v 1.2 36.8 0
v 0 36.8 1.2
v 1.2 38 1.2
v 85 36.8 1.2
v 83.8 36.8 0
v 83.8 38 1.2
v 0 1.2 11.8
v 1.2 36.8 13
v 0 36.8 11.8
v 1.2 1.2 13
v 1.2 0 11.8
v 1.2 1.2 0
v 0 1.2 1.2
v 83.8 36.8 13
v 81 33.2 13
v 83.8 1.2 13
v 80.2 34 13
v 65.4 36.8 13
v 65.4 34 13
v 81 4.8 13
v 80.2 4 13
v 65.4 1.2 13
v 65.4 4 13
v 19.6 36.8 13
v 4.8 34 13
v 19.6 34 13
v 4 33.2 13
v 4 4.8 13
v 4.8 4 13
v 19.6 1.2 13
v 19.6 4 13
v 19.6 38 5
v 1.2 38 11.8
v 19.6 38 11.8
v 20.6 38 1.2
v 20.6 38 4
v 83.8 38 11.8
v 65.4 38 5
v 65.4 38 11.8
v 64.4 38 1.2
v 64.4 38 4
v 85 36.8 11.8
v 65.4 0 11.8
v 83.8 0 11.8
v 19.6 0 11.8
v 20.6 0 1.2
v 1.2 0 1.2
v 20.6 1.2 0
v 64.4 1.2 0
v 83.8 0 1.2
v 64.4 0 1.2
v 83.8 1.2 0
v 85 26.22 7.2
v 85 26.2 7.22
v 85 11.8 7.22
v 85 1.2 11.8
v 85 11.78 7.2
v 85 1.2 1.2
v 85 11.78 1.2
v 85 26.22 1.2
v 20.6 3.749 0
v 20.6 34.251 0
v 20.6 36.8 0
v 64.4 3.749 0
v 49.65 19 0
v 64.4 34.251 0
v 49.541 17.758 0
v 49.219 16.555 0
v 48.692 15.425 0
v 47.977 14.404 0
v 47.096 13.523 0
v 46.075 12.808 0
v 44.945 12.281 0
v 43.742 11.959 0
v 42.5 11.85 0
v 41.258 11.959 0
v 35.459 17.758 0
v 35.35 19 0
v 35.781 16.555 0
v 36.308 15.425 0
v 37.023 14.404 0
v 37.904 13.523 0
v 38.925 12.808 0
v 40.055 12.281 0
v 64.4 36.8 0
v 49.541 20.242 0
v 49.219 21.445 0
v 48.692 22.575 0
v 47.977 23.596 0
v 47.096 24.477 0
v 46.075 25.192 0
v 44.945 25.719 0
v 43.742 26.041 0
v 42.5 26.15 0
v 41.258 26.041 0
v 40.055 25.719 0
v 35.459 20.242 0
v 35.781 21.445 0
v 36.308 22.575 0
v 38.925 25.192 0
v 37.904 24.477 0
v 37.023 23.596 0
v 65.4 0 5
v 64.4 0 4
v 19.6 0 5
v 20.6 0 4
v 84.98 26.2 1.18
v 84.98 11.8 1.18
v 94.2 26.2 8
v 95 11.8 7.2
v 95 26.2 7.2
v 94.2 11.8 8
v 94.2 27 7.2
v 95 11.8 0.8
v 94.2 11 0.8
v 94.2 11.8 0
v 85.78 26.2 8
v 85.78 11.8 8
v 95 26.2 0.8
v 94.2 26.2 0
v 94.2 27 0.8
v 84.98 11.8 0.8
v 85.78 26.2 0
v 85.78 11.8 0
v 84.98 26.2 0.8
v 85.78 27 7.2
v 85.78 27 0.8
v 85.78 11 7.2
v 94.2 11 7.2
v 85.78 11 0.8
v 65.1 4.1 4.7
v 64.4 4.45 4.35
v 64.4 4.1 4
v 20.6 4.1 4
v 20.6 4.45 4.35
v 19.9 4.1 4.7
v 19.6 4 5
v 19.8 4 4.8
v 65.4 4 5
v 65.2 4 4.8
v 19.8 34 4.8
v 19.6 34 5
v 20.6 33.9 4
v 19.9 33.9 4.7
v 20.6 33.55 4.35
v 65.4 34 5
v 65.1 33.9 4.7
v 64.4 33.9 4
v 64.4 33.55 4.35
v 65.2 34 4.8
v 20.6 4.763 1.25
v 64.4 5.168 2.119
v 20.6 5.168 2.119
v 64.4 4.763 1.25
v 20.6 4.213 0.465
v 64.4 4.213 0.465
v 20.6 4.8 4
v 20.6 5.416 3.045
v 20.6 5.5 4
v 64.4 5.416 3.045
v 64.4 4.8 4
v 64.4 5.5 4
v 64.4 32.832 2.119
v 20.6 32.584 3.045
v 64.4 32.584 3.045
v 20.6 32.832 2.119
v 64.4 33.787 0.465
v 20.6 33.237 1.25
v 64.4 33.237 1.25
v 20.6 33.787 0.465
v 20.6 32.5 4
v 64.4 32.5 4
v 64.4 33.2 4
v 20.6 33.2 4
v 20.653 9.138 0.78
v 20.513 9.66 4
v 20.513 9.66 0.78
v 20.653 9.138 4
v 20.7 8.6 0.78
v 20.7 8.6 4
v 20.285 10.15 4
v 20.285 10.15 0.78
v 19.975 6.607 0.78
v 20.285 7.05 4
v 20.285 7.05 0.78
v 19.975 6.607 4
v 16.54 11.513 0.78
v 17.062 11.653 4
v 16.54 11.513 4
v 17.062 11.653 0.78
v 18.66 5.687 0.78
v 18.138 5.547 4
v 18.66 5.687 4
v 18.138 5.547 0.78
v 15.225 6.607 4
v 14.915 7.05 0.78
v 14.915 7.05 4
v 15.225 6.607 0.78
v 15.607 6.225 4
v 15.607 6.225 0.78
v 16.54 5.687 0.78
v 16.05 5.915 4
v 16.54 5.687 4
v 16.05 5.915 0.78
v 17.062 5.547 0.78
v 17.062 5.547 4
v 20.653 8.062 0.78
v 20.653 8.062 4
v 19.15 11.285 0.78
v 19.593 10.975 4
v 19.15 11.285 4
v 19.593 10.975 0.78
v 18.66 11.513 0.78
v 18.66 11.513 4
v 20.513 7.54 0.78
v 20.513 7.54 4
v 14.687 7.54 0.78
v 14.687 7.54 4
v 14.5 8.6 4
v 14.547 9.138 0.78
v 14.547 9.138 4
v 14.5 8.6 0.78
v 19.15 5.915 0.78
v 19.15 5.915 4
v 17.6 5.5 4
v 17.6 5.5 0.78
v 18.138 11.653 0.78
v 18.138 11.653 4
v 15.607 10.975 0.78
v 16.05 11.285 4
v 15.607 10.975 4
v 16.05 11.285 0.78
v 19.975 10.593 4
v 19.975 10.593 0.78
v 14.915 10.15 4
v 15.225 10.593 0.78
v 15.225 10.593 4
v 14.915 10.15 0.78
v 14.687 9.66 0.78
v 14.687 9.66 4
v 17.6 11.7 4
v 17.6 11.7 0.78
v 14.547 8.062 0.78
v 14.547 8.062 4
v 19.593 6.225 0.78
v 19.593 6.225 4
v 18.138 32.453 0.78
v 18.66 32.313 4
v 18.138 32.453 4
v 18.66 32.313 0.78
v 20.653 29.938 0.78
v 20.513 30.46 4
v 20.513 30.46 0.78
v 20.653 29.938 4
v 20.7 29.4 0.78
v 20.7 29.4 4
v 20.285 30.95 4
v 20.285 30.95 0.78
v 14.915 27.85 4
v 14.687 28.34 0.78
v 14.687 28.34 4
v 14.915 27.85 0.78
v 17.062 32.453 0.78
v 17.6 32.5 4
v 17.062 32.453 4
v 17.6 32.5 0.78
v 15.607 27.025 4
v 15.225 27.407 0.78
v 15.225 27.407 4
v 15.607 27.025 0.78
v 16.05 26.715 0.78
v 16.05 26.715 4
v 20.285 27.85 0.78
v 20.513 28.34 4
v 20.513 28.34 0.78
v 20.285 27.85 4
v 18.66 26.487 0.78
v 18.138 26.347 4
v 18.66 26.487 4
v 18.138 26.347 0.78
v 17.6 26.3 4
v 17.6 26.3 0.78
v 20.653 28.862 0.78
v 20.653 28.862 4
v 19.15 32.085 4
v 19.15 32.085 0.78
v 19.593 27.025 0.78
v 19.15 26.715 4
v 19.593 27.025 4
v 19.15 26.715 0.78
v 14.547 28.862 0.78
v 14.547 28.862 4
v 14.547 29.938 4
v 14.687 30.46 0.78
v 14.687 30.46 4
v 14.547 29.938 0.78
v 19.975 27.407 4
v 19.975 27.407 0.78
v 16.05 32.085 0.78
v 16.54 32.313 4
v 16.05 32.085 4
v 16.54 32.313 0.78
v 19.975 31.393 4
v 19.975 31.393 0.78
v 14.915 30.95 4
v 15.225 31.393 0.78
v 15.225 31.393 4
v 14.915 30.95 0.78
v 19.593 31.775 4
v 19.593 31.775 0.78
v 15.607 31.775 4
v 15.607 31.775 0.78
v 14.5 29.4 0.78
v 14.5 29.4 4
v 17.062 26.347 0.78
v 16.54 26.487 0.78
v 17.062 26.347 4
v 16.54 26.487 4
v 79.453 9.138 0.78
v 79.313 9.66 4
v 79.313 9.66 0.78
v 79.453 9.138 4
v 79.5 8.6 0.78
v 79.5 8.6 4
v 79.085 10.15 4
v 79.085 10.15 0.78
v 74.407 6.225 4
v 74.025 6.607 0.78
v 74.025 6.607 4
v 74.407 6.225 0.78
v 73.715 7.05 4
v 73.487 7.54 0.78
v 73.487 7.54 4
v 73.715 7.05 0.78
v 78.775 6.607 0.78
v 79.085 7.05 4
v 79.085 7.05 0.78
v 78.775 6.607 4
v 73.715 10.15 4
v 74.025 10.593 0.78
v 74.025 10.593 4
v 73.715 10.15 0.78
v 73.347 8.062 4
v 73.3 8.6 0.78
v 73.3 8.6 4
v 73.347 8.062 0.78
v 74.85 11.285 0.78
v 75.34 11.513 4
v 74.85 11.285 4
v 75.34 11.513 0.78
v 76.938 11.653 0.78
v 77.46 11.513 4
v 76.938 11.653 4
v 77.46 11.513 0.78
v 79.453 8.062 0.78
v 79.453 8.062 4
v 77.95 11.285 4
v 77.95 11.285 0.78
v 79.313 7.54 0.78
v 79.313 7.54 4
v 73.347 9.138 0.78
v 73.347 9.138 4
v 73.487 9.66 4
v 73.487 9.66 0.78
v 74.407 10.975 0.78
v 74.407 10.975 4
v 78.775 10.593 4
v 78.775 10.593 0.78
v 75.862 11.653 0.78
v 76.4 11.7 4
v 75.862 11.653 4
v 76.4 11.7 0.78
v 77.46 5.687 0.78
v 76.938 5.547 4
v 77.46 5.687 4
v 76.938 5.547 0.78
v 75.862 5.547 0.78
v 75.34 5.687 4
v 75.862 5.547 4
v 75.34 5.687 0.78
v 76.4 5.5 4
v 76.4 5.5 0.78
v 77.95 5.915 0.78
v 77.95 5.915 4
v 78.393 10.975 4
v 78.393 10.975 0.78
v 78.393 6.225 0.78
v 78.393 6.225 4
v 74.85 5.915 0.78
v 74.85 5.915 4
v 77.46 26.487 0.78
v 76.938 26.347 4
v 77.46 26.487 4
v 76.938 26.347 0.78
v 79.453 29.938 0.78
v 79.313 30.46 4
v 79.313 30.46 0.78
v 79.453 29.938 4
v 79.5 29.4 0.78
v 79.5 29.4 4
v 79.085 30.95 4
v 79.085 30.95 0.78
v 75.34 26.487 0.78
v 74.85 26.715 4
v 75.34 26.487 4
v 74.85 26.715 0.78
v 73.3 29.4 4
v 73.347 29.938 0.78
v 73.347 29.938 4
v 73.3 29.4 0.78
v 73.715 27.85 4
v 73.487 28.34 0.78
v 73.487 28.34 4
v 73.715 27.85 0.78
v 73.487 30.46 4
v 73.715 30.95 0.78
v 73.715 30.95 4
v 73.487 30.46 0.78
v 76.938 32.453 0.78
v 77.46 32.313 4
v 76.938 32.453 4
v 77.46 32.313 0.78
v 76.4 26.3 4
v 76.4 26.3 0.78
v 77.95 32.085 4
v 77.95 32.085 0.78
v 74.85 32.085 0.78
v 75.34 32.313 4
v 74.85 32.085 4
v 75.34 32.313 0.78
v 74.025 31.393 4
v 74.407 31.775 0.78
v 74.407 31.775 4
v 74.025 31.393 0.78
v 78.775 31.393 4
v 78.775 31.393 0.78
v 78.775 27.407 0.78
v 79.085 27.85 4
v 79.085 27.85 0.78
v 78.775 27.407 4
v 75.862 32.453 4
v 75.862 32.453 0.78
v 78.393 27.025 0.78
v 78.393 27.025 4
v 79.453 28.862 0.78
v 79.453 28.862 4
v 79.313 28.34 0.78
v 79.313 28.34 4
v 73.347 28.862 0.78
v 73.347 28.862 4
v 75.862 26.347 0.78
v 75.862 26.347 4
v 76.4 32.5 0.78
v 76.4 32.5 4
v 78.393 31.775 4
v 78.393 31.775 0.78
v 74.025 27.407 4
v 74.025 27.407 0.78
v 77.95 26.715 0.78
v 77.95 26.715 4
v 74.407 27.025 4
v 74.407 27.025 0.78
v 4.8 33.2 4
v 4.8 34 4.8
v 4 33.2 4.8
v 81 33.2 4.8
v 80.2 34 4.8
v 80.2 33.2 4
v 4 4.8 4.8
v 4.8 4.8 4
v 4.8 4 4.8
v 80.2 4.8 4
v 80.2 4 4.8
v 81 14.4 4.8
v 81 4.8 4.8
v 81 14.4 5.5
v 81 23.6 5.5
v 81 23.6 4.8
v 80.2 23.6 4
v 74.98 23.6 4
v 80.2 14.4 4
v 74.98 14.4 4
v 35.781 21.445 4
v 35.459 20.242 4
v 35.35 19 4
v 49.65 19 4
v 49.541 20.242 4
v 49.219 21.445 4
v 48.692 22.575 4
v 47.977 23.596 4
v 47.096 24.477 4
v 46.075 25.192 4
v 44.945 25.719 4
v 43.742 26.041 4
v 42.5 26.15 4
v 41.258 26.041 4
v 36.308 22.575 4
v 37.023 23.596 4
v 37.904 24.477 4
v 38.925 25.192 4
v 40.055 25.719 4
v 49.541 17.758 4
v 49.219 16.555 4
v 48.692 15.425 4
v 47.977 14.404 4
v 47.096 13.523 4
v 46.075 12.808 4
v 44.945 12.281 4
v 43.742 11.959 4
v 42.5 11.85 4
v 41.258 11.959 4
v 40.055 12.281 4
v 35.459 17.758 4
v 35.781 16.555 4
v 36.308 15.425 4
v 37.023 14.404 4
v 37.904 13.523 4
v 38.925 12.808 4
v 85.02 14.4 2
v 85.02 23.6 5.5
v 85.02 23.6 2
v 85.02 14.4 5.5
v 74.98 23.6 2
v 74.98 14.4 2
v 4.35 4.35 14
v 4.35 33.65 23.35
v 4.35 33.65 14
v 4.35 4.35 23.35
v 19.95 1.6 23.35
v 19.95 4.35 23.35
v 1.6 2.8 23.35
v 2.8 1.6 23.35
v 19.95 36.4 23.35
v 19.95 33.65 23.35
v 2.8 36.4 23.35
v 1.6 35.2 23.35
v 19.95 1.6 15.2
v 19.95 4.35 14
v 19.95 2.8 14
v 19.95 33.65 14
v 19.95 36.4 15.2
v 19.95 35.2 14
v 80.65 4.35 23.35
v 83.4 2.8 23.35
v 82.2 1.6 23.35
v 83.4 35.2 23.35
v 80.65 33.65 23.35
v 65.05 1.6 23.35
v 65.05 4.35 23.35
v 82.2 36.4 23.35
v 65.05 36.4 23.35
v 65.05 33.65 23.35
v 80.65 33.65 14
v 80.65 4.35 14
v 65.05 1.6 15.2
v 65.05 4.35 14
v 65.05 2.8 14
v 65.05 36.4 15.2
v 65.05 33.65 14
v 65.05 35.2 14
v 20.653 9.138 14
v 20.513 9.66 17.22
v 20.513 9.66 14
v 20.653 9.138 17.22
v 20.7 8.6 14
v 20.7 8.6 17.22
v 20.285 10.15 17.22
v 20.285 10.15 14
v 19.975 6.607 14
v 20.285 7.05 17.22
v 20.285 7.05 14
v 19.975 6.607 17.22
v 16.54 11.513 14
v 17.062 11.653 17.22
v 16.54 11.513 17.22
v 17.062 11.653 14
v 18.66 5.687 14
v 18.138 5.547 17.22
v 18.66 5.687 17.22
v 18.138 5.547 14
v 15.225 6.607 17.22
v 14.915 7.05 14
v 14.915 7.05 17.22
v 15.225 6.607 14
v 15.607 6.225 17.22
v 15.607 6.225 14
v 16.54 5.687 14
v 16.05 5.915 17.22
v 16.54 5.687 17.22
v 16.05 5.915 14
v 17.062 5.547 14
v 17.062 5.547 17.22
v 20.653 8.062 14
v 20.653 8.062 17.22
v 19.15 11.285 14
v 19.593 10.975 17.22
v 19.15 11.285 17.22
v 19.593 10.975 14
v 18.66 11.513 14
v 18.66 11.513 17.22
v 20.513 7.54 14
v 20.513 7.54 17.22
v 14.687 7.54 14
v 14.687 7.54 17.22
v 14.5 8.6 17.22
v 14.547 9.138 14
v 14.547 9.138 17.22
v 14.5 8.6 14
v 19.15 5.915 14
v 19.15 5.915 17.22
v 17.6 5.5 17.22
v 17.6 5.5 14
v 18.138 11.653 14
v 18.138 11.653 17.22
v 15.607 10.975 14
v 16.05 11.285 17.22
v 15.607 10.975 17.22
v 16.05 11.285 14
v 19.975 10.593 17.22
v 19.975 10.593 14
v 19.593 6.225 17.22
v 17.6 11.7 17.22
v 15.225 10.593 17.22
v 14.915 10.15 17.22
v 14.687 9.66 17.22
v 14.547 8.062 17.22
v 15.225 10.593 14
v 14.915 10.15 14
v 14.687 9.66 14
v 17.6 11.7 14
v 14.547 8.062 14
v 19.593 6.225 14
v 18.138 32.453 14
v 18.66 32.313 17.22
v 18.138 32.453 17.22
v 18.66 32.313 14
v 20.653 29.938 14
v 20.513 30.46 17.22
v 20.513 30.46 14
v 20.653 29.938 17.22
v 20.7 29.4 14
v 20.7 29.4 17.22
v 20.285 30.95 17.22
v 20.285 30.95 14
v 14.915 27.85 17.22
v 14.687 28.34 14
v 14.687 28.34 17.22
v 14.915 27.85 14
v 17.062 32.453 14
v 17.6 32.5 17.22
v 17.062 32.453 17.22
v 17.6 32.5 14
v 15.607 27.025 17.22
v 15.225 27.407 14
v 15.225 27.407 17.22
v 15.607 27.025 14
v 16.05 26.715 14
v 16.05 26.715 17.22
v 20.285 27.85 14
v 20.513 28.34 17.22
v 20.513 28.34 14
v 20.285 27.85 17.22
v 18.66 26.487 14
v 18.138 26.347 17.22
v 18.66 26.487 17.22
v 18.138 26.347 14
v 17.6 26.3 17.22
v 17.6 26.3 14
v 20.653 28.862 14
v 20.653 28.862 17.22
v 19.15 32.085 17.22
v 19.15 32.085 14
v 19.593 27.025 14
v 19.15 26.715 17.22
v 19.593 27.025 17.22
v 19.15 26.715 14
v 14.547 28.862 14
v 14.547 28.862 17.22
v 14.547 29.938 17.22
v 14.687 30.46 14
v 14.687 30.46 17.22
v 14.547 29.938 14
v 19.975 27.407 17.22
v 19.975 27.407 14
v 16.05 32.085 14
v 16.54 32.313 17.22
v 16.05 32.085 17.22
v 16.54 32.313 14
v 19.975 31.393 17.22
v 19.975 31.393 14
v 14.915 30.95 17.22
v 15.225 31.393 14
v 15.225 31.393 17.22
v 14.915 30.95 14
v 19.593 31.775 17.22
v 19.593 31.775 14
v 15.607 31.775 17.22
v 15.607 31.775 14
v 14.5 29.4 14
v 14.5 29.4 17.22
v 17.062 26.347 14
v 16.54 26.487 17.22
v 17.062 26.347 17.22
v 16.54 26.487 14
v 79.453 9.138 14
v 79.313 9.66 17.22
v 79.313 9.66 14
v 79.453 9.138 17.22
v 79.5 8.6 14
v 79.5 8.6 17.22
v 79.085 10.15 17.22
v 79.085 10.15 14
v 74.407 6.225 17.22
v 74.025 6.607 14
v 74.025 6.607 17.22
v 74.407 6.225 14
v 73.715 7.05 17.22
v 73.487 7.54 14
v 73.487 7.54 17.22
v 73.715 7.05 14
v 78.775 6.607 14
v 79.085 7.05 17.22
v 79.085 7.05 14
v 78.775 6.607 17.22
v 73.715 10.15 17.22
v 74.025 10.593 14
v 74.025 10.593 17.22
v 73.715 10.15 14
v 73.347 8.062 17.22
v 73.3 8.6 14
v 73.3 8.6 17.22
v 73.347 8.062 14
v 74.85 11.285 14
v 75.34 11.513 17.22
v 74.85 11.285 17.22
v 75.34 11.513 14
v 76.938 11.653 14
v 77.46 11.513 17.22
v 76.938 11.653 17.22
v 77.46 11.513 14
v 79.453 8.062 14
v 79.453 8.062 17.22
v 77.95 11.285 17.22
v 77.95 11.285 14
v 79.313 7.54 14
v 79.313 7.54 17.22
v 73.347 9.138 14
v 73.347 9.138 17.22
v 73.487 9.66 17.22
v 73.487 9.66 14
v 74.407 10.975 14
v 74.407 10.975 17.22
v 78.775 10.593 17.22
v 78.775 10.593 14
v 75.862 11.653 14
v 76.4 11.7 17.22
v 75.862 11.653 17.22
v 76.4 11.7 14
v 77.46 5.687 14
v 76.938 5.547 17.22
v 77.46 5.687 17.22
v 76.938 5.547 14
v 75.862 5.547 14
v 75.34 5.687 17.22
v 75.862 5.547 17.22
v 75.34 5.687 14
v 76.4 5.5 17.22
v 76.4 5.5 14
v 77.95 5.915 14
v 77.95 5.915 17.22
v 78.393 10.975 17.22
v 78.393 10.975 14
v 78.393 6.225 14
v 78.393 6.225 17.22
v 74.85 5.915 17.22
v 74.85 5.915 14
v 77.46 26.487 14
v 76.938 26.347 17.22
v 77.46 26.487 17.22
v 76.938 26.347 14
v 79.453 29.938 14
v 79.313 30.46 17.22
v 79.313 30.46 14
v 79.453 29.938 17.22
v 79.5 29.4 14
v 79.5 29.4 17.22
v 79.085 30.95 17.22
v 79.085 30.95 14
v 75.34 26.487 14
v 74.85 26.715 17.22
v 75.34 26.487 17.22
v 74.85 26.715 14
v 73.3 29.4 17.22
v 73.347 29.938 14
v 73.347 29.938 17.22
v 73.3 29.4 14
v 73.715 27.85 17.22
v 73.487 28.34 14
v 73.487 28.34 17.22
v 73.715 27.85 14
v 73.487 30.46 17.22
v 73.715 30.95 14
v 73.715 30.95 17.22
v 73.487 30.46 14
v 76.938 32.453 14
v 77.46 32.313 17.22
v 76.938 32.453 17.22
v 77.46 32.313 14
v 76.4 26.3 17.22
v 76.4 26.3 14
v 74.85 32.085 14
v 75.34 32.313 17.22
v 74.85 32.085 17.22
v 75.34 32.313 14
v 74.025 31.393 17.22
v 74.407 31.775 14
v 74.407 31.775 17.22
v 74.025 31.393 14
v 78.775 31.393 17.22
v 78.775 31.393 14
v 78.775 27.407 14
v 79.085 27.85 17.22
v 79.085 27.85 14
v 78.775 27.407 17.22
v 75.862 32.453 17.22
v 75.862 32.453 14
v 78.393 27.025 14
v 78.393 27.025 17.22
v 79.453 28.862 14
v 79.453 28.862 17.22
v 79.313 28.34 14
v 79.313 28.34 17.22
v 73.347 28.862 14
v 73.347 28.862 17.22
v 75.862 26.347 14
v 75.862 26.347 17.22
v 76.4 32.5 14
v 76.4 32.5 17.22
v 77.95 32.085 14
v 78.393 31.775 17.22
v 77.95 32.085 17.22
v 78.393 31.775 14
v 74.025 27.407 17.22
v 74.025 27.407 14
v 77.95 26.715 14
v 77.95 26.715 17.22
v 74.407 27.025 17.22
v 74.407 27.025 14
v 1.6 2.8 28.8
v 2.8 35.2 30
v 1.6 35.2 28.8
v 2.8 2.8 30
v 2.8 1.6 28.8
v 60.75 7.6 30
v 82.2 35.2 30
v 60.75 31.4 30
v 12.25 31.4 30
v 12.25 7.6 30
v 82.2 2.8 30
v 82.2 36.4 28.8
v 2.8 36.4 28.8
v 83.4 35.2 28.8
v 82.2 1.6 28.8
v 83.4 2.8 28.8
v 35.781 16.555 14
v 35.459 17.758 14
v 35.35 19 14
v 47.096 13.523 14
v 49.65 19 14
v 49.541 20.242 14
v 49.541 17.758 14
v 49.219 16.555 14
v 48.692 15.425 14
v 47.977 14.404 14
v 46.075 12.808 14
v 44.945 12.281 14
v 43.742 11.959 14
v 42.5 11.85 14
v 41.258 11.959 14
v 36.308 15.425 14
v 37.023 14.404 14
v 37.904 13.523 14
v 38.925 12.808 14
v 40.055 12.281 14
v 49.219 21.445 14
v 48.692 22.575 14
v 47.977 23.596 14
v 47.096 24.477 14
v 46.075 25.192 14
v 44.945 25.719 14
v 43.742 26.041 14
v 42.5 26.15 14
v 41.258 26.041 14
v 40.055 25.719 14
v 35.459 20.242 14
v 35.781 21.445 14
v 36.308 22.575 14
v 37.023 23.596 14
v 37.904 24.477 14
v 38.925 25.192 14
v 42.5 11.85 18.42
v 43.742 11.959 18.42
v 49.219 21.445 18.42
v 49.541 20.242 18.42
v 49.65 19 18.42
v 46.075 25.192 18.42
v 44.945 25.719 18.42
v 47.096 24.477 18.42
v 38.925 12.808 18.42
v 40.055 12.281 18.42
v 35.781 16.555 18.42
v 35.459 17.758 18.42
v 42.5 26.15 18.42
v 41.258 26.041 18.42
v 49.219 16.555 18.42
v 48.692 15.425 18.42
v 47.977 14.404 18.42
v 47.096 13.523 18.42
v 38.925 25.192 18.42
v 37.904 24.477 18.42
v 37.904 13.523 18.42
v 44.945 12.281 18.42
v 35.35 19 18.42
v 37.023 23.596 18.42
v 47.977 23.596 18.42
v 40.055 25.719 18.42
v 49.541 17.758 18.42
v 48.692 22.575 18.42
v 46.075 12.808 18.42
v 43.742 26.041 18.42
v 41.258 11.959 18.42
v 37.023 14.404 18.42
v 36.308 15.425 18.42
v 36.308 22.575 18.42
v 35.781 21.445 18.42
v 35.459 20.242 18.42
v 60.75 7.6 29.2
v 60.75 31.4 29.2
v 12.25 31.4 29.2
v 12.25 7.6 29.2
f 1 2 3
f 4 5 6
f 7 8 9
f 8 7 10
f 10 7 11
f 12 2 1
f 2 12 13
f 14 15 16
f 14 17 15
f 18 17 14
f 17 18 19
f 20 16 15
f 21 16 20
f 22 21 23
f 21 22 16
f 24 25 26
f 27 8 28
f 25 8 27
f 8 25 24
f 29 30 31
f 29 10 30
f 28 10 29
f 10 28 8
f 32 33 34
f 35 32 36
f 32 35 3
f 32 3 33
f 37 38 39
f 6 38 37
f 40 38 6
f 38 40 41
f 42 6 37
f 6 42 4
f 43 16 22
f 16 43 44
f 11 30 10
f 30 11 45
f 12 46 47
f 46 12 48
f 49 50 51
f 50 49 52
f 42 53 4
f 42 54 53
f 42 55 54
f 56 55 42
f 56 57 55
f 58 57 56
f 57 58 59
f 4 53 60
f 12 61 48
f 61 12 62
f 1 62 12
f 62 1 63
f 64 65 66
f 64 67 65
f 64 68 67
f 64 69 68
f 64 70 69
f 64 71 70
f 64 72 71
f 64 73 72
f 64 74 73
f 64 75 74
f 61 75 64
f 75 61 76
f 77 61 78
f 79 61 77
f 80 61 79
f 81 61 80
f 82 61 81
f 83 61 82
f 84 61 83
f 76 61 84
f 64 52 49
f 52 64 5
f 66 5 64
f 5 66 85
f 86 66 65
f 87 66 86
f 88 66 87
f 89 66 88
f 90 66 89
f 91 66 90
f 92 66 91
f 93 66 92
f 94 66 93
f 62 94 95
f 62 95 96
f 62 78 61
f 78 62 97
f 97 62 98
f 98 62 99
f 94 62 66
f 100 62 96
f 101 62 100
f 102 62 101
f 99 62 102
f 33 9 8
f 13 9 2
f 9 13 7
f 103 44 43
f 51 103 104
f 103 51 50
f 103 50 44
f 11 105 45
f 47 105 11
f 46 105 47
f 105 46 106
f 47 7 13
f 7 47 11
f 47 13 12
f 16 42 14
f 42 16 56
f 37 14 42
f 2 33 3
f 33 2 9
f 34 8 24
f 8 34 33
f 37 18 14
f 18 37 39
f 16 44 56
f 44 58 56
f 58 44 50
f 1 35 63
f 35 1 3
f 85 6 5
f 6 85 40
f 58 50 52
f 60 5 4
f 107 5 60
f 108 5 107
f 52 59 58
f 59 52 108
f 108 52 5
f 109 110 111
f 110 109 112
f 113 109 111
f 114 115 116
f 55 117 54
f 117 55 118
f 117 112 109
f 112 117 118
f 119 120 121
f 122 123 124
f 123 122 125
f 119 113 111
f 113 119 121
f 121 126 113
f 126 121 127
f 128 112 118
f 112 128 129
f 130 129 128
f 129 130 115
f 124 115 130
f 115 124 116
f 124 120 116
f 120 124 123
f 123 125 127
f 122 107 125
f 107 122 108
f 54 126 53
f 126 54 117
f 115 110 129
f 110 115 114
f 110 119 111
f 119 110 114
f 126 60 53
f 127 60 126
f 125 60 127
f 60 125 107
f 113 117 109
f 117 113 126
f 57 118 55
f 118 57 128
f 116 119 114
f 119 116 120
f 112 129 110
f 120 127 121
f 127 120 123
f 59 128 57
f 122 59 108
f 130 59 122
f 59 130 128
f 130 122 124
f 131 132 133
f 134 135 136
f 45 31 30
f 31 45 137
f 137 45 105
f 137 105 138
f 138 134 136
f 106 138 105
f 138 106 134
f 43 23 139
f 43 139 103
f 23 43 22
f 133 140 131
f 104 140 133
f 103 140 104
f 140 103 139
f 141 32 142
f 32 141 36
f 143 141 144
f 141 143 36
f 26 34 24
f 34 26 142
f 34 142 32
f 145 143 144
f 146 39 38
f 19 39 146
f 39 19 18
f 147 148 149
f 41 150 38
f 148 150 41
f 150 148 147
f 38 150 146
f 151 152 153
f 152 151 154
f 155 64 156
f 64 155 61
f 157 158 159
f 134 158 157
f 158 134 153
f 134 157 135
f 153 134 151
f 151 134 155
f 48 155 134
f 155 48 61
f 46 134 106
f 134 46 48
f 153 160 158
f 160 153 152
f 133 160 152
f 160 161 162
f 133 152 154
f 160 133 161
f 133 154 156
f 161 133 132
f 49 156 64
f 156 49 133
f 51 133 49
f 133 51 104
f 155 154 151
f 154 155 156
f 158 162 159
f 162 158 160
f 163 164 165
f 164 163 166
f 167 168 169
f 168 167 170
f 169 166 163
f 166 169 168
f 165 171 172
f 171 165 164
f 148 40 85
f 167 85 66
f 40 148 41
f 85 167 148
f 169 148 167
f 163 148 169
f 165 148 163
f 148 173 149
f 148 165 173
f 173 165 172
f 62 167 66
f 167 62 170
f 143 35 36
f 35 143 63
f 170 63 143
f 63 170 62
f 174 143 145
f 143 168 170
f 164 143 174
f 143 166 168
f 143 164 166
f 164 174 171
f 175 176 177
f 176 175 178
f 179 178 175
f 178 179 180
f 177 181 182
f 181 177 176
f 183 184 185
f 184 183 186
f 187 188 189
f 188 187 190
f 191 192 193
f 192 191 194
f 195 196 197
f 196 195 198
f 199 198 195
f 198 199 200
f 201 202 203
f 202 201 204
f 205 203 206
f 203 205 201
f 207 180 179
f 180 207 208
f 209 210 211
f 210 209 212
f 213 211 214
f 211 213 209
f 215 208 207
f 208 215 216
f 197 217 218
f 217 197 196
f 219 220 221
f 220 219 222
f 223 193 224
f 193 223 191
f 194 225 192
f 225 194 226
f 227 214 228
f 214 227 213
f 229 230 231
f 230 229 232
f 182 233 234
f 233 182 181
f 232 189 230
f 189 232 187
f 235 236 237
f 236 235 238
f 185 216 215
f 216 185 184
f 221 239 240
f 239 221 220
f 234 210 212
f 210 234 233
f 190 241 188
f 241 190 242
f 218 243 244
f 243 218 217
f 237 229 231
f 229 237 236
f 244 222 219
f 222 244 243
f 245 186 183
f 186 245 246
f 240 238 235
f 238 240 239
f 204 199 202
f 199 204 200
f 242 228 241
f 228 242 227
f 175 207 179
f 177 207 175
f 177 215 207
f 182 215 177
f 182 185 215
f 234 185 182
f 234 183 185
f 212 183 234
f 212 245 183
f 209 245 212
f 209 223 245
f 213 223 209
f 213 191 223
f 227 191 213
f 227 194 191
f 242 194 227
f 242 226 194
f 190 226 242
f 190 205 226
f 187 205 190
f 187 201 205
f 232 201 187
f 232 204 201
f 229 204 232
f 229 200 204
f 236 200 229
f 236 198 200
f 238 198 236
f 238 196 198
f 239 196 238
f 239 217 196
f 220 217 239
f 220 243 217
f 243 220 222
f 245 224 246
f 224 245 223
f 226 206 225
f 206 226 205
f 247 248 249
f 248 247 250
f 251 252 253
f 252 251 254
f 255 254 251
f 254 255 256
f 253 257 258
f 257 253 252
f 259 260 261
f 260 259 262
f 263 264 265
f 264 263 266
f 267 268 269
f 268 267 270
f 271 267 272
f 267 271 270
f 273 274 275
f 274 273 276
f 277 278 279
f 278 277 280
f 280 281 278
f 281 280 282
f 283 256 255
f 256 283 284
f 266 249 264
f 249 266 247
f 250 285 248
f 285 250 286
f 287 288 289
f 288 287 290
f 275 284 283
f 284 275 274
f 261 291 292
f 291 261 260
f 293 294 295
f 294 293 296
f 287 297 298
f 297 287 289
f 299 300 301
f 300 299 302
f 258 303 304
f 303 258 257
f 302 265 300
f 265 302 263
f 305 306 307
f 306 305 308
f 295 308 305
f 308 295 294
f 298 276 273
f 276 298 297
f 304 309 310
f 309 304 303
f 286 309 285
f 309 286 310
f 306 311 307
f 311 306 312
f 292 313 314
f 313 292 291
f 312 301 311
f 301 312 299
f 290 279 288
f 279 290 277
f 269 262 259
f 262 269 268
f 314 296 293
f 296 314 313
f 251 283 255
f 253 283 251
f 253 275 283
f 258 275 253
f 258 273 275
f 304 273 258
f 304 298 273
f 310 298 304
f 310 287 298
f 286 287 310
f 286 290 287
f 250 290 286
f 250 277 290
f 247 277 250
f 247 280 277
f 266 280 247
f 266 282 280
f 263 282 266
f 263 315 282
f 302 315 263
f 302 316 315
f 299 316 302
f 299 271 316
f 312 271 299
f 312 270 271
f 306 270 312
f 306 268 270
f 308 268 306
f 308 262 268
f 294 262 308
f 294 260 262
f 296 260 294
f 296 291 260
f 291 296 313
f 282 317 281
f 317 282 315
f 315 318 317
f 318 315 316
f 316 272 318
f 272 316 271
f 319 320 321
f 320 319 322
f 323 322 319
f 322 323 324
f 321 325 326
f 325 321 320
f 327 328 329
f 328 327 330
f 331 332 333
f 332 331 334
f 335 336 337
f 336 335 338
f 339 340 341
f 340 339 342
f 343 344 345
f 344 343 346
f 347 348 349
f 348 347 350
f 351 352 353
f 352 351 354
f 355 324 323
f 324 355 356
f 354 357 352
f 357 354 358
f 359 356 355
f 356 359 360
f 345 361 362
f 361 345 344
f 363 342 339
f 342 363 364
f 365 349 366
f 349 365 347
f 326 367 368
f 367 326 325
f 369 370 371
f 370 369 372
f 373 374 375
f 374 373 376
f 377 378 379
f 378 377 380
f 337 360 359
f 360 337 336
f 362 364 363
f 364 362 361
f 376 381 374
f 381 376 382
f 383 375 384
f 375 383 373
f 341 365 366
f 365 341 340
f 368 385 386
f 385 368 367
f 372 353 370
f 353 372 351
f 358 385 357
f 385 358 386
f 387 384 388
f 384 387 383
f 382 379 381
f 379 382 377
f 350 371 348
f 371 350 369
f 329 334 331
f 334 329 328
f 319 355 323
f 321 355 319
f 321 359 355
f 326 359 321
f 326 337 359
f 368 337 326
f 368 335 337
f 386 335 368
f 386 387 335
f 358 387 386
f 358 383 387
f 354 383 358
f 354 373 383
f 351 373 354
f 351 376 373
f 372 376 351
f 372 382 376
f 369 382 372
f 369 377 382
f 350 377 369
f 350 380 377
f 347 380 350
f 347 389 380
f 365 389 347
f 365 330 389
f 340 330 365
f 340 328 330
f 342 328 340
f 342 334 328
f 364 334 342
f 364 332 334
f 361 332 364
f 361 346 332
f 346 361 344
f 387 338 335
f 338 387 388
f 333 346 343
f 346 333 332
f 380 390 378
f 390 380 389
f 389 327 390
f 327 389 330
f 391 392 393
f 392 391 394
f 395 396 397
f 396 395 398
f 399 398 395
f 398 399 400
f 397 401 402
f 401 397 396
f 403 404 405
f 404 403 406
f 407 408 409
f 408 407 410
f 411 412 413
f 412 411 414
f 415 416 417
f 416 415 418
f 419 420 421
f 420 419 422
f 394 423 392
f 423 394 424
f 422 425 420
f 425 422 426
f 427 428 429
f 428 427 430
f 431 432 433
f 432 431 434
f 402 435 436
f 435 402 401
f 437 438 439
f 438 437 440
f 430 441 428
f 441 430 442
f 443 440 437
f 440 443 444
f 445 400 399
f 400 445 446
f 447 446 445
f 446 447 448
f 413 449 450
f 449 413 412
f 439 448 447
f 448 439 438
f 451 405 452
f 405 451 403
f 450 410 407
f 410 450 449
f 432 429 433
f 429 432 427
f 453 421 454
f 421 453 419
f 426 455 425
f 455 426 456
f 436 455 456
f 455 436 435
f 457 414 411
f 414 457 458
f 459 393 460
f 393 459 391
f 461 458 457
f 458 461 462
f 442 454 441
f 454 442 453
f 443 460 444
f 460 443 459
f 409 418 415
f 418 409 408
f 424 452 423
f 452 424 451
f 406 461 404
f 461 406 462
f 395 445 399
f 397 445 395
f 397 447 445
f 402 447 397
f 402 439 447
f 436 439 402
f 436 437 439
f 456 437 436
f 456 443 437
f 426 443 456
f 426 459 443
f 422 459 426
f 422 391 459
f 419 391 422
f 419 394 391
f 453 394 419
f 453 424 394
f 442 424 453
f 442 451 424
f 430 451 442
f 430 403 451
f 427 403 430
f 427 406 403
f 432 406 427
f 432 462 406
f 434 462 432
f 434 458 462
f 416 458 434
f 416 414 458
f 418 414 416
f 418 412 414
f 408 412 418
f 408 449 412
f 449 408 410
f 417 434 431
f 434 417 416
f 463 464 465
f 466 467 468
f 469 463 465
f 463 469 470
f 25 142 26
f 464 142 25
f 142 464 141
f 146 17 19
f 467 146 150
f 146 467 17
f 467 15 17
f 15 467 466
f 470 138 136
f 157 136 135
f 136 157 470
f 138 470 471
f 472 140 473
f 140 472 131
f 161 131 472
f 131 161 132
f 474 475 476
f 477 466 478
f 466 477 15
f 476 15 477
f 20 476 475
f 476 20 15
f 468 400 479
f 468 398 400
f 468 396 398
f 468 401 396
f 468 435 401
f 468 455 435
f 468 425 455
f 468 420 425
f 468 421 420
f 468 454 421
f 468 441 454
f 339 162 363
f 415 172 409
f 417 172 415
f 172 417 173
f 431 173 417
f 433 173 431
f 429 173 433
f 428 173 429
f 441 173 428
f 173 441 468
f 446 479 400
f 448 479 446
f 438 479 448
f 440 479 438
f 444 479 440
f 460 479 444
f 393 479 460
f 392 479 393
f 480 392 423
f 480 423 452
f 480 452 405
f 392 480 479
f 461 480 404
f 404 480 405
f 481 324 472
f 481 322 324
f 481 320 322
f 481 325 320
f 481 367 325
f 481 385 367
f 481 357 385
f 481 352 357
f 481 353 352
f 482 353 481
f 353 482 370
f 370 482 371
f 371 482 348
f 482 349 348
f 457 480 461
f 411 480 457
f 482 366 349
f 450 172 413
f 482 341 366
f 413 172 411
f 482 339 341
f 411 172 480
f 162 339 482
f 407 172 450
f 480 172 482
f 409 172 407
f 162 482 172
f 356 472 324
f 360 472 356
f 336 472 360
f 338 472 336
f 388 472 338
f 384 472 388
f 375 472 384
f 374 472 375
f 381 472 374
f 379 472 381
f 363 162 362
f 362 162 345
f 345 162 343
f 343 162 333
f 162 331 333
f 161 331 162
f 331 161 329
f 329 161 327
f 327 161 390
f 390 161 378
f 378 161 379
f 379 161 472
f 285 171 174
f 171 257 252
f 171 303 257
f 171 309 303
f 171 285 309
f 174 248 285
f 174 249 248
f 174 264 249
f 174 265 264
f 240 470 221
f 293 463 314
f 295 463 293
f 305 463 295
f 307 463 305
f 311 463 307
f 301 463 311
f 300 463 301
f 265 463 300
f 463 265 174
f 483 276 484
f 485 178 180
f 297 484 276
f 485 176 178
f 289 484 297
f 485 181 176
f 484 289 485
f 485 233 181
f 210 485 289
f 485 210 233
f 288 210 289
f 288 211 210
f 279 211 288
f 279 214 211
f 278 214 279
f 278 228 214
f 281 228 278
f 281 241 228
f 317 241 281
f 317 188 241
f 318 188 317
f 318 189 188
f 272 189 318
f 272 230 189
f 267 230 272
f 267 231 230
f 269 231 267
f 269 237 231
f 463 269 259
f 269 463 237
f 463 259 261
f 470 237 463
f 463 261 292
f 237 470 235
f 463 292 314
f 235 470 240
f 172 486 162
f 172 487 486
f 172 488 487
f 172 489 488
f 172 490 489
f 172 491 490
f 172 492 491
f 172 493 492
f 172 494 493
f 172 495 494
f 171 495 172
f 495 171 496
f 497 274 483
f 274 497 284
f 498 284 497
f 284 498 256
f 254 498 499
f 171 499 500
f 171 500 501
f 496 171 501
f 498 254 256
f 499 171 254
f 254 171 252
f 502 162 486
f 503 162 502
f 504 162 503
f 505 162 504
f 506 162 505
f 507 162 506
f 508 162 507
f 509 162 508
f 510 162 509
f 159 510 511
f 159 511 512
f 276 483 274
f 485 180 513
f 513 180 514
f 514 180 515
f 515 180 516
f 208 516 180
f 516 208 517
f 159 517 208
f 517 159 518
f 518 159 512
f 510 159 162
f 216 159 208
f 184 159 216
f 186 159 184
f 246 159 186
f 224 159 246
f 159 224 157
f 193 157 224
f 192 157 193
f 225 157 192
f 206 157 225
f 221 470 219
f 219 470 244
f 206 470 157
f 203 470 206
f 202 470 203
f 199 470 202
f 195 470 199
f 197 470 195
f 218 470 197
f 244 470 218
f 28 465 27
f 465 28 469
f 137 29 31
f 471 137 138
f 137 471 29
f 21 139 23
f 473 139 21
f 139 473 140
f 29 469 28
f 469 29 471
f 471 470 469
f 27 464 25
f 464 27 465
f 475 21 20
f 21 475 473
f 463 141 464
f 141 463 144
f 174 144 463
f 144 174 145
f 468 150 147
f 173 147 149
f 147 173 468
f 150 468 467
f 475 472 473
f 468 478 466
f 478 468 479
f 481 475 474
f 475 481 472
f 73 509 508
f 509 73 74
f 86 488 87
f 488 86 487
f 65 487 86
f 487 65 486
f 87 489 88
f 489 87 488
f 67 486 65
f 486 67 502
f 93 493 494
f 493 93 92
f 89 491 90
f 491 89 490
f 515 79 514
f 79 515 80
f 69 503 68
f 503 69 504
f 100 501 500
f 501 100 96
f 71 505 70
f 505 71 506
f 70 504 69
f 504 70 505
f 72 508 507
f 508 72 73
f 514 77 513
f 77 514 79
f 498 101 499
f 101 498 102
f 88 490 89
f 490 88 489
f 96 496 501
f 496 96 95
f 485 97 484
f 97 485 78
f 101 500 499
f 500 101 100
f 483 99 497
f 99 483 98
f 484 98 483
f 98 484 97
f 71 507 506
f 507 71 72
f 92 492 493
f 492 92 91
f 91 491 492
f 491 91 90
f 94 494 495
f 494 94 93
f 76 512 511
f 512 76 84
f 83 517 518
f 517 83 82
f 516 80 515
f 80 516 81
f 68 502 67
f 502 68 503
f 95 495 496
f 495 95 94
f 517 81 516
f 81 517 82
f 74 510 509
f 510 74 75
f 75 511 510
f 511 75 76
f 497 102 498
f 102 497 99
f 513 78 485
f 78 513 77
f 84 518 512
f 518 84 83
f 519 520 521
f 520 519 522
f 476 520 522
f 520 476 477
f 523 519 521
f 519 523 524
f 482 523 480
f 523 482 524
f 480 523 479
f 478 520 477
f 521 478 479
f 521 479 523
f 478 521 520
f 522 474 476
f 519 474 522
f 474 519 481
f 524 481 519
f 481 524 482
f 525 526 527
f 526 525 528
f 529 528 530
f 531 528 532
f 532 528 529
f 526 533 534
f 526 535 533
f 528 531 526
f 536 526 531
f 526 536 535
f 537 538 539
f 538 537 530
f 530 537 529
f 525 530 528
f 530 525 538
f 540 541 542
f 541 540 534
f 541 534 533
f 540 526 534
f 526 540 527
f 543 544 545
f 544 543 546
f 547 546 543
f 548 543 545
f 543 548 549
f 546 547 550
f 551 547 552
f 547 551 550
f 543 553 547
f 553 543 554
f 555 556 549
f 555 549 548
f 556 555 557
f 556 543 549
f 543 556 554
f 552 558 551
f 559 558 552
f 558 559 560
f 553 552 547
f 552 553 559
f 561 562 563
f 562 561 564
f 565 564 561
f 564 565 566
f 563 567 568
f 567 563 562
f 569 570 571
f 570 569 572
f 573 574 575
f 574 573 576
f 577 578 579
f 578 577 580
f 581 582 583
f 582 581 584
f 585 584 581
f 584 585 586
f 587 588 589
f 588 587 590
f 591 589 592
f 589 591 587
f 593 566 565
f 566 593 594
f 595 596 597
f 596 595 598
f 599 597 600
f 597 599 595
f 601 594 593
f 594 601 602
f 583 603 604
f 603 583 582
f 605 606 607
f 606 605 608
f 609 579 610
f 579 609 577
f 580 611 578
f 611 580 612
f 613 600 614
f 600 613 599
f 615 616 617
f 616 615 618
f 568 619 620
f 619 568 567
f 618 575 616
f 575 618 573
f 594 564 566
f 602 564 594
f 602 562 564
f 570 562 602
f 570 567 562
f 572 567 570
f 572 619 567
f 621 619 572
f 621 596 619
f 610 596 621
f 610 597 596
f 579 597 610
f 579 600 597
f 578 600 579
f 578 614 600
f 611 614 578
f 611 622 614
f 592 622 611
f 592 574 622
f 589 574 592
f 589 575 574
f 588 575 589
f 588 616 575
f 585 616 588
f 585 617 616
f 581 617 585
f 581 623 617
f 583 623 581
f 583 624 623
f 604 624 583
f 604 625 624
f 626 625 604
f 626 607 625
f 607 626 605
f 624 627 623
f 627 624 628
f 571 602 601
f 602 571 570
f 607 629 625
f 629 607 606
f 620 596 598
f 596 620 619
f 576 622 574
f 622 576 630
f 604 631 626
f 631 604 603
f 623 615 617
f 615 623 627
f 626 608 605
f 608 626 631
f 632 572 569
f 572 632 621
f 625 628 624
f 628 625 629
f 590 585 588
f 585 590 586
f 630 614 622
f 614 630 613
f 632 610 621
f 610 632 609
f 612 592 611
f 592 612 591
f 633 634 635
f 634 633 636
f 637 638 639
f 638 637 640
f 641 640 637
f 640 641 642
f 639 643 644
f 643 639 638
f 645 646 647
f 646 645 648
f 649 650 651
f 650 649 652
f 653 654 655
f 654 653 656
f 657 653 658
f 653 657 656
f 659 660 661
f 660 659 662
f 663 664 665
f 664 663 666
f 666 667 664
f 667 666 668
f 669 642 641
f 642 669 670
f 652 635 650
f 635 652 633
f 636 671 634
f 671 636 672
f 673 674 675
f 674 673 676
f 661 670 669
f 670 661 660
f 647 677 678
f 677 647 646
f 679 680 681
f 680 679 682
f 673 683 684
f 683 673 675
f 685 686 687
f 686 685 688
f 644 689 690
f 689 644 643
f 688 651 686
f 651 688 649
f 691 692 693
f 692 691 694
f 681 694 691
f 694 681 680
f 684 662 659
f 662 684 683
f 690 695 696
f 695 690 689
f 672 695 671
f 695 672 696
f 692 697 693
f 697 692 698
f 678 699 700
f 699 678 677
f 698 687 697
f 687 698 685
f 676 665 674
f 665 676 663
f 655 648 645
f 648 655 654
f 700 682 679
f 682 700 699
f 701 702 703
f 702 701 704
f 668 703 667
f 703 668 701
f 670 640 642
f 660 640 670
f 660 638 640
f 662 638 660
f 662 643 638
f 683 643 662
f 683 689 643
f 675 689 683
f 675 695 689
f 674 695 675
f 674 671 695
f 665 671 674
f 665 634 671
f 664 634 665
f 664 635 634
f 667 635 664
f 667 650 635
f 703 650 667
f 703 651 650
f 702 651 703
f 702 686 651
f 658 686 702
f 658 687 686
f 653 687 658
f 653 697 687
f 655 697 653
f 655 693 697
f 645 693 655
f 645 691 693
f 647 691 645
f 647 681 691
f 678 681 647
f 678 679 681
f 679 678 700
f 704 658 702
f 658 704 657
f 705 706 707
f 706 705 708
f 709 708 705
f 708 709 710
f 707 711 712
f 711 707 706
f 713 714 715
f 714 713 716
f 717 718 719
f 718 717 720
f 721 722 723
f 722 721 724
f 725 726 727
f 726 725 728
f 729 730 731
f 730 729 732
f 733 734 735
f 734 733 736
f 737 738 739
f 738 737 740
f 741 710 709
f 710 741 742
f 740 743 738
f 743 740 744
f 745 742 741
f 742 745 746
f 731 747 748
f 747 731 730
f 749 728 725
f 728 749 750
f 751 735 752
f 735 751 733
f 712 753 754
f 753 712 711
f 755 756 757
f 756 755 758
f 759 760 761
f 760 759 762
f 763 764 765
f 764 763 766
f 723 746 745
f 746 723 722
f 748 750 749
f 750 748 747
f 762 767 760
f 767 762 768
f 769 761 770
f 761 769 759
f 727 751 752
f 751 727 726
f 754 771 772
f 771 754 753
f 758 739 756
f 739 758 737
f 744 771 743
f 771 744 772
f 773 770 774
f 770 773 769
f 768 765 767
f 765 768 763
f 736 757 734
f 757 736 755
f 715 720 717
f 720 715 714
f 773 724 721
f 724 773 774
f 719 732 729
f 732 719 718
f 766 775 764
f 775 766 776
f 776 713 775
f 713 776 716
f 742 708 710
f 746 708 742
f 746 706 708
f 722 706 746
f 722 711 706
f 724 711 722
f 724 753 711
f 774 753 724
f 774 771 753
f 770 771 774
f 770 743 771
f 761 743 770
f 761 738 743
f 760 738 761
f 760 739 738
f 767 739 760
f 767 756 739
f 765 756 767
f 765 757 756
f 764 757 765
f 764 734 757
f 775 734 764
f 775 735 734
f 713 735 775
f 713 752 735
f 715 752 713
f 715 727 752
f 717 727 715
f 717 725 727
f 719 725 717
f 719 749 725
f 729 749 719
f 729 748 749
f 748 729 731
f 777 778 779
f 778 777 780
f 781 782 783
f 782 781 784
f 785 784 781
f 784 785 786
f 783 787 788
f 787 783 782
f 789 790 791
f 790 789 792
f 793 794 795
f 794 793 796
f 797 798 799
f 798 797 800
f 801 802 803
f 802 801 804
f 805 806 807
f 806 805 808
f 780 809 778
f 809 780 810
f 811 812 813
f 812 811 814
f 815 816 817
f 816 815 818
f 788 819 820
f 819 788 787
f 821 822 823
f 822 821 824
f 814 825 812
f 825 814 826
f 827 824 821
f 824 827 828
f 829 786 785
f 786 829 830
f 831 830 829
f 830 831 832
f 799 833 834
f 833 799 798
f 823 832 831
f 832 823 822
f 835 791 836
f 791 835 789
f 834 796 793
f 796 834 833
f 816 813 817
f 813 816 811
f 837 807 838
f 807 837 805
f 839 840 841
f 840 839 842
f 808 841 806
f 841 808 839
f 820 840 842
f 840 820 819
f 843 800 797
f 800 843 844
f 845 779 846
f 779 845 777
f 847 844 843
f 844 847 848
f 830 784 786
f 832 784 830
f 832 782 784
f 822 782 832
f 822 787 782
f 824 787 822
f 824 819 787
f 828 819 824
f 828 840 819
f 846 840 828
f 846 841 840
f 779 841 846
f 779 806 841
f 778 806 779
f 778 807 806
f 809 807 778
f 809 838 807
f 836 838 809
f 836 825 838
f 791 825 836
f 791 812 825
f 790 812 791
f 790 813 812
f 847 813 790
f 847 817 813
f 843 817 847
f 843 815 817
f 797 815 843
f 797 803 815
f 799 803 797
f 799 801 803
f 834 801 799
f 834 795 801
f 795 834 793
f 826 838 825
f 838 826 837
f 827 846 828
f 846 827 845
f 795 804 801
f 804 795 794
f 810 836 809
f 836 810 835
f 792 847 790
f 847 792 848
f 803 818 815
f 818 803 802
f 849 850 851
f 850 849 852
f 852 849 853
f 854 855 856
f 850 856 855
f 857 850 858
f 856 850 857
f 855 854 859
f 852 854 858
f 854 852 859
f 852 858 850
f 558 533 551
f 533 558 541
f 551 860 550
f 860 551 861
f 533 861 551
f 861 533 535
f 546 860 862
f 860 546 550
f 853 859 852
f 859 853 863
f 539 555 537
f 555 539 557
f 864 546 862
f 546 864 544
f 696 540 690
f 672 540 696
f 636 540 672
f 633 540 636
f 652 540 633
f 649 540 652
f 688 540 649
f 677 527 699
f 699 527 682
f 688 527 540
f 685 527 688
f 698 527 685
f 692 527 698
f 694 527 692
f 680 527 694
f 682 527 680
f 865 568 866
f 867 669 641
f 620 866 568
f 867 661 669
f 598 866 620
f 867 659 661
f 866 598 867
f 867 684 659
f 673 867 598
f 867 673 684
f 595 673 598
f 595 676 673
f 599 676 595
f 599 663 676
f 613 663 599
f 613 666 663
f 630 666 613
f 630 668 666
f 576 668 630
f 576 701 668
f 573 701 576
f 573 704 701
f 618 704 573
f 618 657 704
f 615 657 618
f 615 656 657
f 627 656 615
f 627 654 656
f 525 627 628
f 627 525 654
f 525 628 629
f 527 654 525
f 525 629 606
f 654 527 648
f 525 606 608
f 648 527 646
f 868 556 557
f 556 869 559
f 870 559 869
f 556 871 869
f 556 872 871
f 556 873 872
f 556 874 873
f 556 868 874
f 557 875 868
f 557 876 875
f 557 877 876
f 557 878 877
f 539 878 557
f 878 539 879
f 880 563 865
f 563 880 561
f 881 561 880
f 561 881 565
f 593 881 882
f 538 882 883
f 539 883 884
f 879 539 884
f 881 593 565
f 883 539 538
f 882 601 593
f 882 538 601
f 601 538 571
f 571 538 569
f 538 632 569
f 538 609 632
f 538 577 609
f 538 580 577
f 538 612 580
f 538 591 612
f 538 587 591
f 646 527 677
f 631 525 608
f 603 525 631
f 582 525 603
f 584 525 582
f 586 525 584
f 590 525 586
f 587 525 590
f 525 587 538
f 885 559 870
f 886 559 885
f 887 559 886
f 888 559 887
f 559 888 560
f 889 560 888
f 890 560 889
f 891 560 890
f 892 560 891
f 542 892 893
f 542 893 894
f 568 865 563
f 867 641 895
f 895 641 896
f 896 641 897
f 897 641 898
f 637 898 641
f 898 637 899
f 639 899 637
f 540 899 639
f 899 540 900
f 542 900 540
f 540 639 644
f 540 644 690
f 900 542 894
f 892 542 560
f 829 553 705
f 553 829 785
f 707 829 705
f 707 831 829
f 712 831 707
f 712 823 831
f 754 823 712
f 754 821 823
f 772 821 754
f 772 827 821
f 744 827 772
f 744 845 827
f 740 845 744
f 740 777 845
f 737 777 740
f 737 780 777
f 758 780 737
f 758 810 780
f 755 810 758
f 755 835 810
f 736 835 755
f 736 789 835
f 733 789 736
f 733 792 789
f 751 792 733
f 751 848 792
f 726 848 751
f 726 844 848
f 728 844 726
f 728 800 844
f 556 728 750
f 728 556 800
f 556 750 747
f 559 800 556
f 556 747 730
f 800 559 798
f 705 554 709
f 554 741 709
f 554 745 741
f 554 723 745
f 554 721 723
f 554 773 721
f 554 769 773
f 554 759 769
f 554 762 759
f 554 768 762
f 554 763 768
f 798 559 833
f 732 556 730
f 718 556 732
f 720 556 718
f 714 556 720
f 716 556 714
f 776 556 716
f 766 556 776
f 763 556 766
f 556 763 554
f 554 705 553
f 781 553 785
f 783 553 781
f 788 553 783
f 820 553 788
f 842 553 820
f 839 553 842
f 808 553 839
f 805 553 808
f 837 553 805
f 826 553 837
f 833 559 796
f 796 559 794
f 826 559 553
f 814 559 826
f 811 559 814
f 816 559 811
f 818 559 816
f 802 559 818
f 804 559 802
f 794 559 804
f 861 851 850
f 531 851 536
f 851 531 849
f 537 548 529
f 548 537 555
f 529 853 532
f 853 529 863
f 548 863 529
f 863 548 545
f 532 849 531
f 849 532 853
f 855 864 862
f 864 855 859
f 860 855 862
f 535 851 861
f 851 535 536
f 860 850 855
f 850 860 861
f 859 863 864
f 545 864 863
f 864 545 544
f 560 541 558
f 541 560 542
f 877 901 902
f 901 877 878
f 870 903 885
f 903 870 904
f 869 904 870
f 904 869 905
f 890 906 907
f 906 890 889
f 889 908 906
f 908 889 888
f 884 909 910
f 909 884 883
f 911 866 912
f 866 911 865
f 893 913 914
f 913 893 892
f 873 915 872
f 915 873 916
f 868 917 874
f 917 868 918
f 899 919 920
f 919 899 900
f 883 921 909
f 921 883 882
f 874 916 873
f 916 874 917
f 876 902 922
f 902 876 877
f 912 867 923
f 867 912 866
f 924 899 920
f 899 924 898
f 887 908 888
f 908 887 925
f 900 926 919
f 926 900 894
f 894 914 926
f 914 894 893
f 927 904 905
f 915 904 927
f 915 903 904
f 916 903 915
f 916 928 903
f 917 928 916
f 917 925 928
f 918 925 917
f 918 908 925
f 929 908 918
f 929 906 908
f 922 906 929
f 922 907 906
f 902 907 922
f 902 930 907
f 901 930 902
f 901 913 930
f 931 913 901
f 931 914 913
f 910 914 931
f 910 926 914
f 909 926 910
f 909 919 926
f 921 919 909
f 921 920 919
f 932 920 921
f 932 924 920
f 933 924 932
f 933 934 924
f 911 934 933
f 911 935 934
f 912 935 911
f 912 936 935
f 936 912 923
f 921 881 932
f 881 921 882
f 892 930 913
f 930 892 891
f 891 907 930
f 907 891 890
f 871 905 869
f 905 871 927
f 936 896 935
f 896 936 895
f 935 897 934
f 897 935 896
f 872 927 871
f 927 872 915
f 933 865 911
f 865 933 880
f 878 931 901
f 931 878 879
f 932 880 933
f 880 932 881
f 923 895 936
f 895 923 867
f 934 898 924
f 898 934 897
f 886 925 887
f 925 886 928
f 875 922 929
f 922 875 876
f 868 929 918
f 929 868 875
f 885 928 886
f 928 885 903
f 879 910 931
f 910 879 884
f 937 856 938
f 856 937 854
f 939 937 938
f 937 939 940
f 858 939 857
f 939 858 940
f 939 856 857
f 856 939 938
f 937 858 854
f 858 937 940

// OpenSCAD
// Dock mating contract — bike plate ↔ HUD pod
// Units: millimetres. Owned by enclosure/DOCK.md / ADR 0014.
//
// Plate: chamfered plinth + U-shaped end caps that rise into matching
// rebates on the pod. Long-side middles are open for a gloved grip.
// Magnets live under the caps; pogo sits in the open middle.
//
//   openscad -o exports/dock_interface.stl dock_interface.scad
//   openscad -D 'iface_part="plate"' -o exports/dock_plate_slab.stl dock_interface.scad
//   openscad -D 'iface_part="pod"'   -o exports/dock_pod_slab.stl dock_interface.scad

/* [Preview] */
iface_part = "assembly"; // [assembly, plate, pod]
iface_explode = 10;      // [0:1:24] plate/pod separation (mm)

/* [Pod footprint — must match moto_hud_case.scad outer_*] */
board_w = 65.0;
board_d = 30.0;
wall = 2.0;
clearance = 0.4;
button_rail = 12.0;
outer_w = board_w + 2 * (wall + clearance) + button_rail;
outer_d = board_d + 2 * (wall + clearance);

/* [Cradle] */
brim = 1.6;          // floor extra outside the pod (chamfered plinth)
wall_t = 2.4;        // end-cap thickness = pod rebate depth
wrap_h = 9.0;        // how far caps rise up the pod
wrap_x = 18.0;       // remaining side-wall length from each short end (mm)
fit = 0.35;          // extra rebate vs wall (print + paint)
chamfer = 1.2;       // every outer edge / corner
plate_t = 4.0;       // floor thicker than mag_h so pockets do not break through
scoop_r = 5.5;       // finger undercut in the grip gap

/* [Magnets — 6×3 mm N52 discs, checkerboard polarity] */
mag_d = 6.0;
mag_h = 3.0;
mag_pocket_clear = 0.2;
mag_pocket_extra_z = 0.2;
// Centres from pod outer edges. −X (SD) past the Pi M2.5 boss; +X in the rail.
mag_inset_x0 = 16.0;
mag_inset_x1 = 7.0;
mag_inset_y = 7.0;

/* [USB-C inlet — plate +X end cap. Sink from bike accessory port.] */
usb_c_block_w = 16.0;
usb_c_block_d = 10.0;
usb_c_block_h = 8.0;
usb_c_w = 9.2;
usb_c_h = 3.5;
usb_c_z = 2.0;

/* [Pogo well — keyed 3-pin magnetic housing, caliper then retune] */
pogo_well_d = 14.0;
pogo_well_clear = 0.3;
pogo_recess = 1.0;
pogo_pitch = 2.54;
pogo_pad_d = 2.0;
pogo_pin_d = 1.5;

/* [Pod preview body] */
pod_h = 16.0;
window_w = 48.5;
window_d = 23.8;
window_ox = (board_w - window_w) / 2;
window_oy = (board_d - window_d) / 2 + 0.5;

/* [Quality] */
$fn = 36;

eps = 0.02;

pod_w = outer_w;
pod_d = outer_d;

plate_w = pod_w + 2 * brim;
plate_d = pod_d + 2 * brim;

grip_w = pod_w - 2 * wrap_x;

function mag_xy(i, j) = [
    i == 0 ? mag_inset_x0 : pod_w - mag_inset_x1,
    mag_inset_y + j * (pod_d - 2 * mag_inset_y)
];

function mag_north(i, j) = (i + j) % 2 == 0;

function pogo_center() = [pod_w / 2, pod_d / 2];

function pogo_pad_xy(n) = [
    pogo_center()[0] + (n - 1) * pogo_pitch,
    pogo_center()[1]
];

// Chamfered box: 45° on every edge and corner (hull of three slabs + caps).
module chamfer_cube(w, d, h, c) {
    cc = min(c, w / 2 - 0.15, d / 2 - 0.15, h / 2 - 0.15);
    hull() {
        translate([cc, cc, 0])
            cube([w - 2 * cc, d - 2 * cc, 0.05]);
        translate([0, cc, cc])
            cube([w, d - 2 * cc, h - 2 * cc]);
        translate([cc, 0, cc])
            cube([w - 2 * cc, d, h - 2 * cc]);
        translate([cc, cc, h - 0.05])
            cube([w - 2 * cc, d - 2 * cc, 0.05]);
    }
}

module mag_pockets(h, extra_r = 0) {
    for (i = [0, 1], j = [0, 1]) {
        p = mag_xy(i, j);
        translate([p[0], p[1], -eps])
            cylinder(h = h + 2 * eps, d = mag_d + mag_pocket_clear + extra_r);
    }
}

module pogo_well_cut(h) {
    p = pogo_center();
    translate([p[0], p[1], -eps])
        cylinder(h = h + 2 * eps, d = pogo_well_d + pogo_well_clear);
}

// U-rebate on the pod: step-in at each short end + wrap along the long sides.
module pod_u_rebates() {
    d = wall_t + fit;
    h = wrap_h + fit;
    wx = wrap_x + fit;
    // −X end + wraps
    translate([-eps, -eps, -eps])
        cube([d + eps, pod_d + 2 * eps, h + eps]);
    translate([-eps, -eps, -eps])
        cube([wx + eps, d + eps, h + eps]);
    translate([-eps, pod_d - d, -eps])
        cube([wx + eps, d + eps, h + eps]);
    // +X end + wraps
    translate([pod_w - d, -eps, -eps])
        cube([d + eps, pod_d + 2 * eps, h + eps]);
    translate([pod_w - wx, -eps, -eps])
        cube([wx + eps, d + eps, h + eps]);
    translate([pod_w - wx, pod_d - d, -eps])
        cube([wx + eps, d + eps, h + eps]);
}

module pod_window_cut() {
    recess = 0.8;
    ox = wall + clearance + window_ox;
    oy = wall + clearance + window_oy;
    translate([ox, oy, pod_h - recess])
        cube([window_w, window_d, recess + eps]);
}

module pod_dock_slab() {
    difference() {
        chamfer_cube(pod_w, pod_d, pod_h, chamfer);
        pod_u_rebates();
        mag_pockets(mag_h + mag_pocket_extra_z);
        pogo_well_cut(mag_h + mag_pocket_extra_z + 1.2);
        pod_window_cut();
    }
}

module usb_c_inlet_block() {
    translate([
        plate_w - eps,
        (plate_d - usb_c_block_w) / 2,
        0
    ])
        chamfer_cube(usb_c_block_d + eps, usb_c_block_w, usb_c_block_h, 0.8);
}

module usb_c_inlet_cut() {
    translate([
        plate_w - usb_c_block_d - eps,
        (plate_d - usb_c_w) / 2,
        usb_c_z
    ])
        cube([usb_c_block_d + 2 * eps, usb_c_w, usb_c_h]);
}

module grip_cutouts() {
    // Chamfered cutters so the remaining arm ends are 45°, not square.
    cut_d = brim + wall_t + 2.5;
    cut_h = wrap_h + chamfer + 2;
    x0 = brim + wrap_x;
    for (y0 = [-1.2, plate_d - cut_d + 1.2]) {
        translate([x0, y0, plate_t - 0.2])
            chamfer_cube(grip_w, cut_d, cut_h, chamfer);
    }
}

module finger_scoops() {
    // Undercut the plinth in the grip gap so a glove can hook the pod ridge.
    for (y = [0, plate_d]) {
        translate([plate_w / 2, y, plate_t])
            rotate([0, 90, 0])
                cylinder(h = grip_w - 2, r = scoop_r, center = true);
    }
}

module bike_plate_slab() {
    well_h = plate_t + wrap_h;
    inner_w = pod_w - 2 * wall_t;
    inner_d = pod_d - 2 * wall_t;
    difference() {
        union() {
            // One chamfered solid: floor + full-height walls, then we notch grips.
            chamfer_cube(plate_w, plate_d, well_h, chamfer);
            usb_c_inlet_block();
        }
        // Well: inner cavity sized to the pod rebate (walls fill the U-insets)
        translate([brim + wall_t, brim + wall_t, plate_t])
            chamfer_cube(inner_w, inner_d, wrap_h + chamfer + 1, 0.8);
        // Open the long-side middles for grip
        grip_cutouts();
        finger_scoops();
        // Magnet pockets in the floor, opening toward the pod (up)
        translate([brim, brim, plate_t - (mag_h + mag_pocket_extra_z)])
            mag_pockets(mag_h + mag_pocket_extra_z + eps);
        // Pogo well through floor (open middle, between the caps)
        translate([brim, brim, -eps])
            pogo_well_cut(well_h + 2 * eps);
        usb_c_inlet_cut();
    }
}

module assembly() {
    bike_plate_slab();
    translate([brim, brim, plate_t + iface_explode])
        pod_dock_slab();
}

if (iface_part == "plate")
    bike_plate_slab();
else if (iface_part == "pod")
    pod_dock_slab();
else
    assembly();
